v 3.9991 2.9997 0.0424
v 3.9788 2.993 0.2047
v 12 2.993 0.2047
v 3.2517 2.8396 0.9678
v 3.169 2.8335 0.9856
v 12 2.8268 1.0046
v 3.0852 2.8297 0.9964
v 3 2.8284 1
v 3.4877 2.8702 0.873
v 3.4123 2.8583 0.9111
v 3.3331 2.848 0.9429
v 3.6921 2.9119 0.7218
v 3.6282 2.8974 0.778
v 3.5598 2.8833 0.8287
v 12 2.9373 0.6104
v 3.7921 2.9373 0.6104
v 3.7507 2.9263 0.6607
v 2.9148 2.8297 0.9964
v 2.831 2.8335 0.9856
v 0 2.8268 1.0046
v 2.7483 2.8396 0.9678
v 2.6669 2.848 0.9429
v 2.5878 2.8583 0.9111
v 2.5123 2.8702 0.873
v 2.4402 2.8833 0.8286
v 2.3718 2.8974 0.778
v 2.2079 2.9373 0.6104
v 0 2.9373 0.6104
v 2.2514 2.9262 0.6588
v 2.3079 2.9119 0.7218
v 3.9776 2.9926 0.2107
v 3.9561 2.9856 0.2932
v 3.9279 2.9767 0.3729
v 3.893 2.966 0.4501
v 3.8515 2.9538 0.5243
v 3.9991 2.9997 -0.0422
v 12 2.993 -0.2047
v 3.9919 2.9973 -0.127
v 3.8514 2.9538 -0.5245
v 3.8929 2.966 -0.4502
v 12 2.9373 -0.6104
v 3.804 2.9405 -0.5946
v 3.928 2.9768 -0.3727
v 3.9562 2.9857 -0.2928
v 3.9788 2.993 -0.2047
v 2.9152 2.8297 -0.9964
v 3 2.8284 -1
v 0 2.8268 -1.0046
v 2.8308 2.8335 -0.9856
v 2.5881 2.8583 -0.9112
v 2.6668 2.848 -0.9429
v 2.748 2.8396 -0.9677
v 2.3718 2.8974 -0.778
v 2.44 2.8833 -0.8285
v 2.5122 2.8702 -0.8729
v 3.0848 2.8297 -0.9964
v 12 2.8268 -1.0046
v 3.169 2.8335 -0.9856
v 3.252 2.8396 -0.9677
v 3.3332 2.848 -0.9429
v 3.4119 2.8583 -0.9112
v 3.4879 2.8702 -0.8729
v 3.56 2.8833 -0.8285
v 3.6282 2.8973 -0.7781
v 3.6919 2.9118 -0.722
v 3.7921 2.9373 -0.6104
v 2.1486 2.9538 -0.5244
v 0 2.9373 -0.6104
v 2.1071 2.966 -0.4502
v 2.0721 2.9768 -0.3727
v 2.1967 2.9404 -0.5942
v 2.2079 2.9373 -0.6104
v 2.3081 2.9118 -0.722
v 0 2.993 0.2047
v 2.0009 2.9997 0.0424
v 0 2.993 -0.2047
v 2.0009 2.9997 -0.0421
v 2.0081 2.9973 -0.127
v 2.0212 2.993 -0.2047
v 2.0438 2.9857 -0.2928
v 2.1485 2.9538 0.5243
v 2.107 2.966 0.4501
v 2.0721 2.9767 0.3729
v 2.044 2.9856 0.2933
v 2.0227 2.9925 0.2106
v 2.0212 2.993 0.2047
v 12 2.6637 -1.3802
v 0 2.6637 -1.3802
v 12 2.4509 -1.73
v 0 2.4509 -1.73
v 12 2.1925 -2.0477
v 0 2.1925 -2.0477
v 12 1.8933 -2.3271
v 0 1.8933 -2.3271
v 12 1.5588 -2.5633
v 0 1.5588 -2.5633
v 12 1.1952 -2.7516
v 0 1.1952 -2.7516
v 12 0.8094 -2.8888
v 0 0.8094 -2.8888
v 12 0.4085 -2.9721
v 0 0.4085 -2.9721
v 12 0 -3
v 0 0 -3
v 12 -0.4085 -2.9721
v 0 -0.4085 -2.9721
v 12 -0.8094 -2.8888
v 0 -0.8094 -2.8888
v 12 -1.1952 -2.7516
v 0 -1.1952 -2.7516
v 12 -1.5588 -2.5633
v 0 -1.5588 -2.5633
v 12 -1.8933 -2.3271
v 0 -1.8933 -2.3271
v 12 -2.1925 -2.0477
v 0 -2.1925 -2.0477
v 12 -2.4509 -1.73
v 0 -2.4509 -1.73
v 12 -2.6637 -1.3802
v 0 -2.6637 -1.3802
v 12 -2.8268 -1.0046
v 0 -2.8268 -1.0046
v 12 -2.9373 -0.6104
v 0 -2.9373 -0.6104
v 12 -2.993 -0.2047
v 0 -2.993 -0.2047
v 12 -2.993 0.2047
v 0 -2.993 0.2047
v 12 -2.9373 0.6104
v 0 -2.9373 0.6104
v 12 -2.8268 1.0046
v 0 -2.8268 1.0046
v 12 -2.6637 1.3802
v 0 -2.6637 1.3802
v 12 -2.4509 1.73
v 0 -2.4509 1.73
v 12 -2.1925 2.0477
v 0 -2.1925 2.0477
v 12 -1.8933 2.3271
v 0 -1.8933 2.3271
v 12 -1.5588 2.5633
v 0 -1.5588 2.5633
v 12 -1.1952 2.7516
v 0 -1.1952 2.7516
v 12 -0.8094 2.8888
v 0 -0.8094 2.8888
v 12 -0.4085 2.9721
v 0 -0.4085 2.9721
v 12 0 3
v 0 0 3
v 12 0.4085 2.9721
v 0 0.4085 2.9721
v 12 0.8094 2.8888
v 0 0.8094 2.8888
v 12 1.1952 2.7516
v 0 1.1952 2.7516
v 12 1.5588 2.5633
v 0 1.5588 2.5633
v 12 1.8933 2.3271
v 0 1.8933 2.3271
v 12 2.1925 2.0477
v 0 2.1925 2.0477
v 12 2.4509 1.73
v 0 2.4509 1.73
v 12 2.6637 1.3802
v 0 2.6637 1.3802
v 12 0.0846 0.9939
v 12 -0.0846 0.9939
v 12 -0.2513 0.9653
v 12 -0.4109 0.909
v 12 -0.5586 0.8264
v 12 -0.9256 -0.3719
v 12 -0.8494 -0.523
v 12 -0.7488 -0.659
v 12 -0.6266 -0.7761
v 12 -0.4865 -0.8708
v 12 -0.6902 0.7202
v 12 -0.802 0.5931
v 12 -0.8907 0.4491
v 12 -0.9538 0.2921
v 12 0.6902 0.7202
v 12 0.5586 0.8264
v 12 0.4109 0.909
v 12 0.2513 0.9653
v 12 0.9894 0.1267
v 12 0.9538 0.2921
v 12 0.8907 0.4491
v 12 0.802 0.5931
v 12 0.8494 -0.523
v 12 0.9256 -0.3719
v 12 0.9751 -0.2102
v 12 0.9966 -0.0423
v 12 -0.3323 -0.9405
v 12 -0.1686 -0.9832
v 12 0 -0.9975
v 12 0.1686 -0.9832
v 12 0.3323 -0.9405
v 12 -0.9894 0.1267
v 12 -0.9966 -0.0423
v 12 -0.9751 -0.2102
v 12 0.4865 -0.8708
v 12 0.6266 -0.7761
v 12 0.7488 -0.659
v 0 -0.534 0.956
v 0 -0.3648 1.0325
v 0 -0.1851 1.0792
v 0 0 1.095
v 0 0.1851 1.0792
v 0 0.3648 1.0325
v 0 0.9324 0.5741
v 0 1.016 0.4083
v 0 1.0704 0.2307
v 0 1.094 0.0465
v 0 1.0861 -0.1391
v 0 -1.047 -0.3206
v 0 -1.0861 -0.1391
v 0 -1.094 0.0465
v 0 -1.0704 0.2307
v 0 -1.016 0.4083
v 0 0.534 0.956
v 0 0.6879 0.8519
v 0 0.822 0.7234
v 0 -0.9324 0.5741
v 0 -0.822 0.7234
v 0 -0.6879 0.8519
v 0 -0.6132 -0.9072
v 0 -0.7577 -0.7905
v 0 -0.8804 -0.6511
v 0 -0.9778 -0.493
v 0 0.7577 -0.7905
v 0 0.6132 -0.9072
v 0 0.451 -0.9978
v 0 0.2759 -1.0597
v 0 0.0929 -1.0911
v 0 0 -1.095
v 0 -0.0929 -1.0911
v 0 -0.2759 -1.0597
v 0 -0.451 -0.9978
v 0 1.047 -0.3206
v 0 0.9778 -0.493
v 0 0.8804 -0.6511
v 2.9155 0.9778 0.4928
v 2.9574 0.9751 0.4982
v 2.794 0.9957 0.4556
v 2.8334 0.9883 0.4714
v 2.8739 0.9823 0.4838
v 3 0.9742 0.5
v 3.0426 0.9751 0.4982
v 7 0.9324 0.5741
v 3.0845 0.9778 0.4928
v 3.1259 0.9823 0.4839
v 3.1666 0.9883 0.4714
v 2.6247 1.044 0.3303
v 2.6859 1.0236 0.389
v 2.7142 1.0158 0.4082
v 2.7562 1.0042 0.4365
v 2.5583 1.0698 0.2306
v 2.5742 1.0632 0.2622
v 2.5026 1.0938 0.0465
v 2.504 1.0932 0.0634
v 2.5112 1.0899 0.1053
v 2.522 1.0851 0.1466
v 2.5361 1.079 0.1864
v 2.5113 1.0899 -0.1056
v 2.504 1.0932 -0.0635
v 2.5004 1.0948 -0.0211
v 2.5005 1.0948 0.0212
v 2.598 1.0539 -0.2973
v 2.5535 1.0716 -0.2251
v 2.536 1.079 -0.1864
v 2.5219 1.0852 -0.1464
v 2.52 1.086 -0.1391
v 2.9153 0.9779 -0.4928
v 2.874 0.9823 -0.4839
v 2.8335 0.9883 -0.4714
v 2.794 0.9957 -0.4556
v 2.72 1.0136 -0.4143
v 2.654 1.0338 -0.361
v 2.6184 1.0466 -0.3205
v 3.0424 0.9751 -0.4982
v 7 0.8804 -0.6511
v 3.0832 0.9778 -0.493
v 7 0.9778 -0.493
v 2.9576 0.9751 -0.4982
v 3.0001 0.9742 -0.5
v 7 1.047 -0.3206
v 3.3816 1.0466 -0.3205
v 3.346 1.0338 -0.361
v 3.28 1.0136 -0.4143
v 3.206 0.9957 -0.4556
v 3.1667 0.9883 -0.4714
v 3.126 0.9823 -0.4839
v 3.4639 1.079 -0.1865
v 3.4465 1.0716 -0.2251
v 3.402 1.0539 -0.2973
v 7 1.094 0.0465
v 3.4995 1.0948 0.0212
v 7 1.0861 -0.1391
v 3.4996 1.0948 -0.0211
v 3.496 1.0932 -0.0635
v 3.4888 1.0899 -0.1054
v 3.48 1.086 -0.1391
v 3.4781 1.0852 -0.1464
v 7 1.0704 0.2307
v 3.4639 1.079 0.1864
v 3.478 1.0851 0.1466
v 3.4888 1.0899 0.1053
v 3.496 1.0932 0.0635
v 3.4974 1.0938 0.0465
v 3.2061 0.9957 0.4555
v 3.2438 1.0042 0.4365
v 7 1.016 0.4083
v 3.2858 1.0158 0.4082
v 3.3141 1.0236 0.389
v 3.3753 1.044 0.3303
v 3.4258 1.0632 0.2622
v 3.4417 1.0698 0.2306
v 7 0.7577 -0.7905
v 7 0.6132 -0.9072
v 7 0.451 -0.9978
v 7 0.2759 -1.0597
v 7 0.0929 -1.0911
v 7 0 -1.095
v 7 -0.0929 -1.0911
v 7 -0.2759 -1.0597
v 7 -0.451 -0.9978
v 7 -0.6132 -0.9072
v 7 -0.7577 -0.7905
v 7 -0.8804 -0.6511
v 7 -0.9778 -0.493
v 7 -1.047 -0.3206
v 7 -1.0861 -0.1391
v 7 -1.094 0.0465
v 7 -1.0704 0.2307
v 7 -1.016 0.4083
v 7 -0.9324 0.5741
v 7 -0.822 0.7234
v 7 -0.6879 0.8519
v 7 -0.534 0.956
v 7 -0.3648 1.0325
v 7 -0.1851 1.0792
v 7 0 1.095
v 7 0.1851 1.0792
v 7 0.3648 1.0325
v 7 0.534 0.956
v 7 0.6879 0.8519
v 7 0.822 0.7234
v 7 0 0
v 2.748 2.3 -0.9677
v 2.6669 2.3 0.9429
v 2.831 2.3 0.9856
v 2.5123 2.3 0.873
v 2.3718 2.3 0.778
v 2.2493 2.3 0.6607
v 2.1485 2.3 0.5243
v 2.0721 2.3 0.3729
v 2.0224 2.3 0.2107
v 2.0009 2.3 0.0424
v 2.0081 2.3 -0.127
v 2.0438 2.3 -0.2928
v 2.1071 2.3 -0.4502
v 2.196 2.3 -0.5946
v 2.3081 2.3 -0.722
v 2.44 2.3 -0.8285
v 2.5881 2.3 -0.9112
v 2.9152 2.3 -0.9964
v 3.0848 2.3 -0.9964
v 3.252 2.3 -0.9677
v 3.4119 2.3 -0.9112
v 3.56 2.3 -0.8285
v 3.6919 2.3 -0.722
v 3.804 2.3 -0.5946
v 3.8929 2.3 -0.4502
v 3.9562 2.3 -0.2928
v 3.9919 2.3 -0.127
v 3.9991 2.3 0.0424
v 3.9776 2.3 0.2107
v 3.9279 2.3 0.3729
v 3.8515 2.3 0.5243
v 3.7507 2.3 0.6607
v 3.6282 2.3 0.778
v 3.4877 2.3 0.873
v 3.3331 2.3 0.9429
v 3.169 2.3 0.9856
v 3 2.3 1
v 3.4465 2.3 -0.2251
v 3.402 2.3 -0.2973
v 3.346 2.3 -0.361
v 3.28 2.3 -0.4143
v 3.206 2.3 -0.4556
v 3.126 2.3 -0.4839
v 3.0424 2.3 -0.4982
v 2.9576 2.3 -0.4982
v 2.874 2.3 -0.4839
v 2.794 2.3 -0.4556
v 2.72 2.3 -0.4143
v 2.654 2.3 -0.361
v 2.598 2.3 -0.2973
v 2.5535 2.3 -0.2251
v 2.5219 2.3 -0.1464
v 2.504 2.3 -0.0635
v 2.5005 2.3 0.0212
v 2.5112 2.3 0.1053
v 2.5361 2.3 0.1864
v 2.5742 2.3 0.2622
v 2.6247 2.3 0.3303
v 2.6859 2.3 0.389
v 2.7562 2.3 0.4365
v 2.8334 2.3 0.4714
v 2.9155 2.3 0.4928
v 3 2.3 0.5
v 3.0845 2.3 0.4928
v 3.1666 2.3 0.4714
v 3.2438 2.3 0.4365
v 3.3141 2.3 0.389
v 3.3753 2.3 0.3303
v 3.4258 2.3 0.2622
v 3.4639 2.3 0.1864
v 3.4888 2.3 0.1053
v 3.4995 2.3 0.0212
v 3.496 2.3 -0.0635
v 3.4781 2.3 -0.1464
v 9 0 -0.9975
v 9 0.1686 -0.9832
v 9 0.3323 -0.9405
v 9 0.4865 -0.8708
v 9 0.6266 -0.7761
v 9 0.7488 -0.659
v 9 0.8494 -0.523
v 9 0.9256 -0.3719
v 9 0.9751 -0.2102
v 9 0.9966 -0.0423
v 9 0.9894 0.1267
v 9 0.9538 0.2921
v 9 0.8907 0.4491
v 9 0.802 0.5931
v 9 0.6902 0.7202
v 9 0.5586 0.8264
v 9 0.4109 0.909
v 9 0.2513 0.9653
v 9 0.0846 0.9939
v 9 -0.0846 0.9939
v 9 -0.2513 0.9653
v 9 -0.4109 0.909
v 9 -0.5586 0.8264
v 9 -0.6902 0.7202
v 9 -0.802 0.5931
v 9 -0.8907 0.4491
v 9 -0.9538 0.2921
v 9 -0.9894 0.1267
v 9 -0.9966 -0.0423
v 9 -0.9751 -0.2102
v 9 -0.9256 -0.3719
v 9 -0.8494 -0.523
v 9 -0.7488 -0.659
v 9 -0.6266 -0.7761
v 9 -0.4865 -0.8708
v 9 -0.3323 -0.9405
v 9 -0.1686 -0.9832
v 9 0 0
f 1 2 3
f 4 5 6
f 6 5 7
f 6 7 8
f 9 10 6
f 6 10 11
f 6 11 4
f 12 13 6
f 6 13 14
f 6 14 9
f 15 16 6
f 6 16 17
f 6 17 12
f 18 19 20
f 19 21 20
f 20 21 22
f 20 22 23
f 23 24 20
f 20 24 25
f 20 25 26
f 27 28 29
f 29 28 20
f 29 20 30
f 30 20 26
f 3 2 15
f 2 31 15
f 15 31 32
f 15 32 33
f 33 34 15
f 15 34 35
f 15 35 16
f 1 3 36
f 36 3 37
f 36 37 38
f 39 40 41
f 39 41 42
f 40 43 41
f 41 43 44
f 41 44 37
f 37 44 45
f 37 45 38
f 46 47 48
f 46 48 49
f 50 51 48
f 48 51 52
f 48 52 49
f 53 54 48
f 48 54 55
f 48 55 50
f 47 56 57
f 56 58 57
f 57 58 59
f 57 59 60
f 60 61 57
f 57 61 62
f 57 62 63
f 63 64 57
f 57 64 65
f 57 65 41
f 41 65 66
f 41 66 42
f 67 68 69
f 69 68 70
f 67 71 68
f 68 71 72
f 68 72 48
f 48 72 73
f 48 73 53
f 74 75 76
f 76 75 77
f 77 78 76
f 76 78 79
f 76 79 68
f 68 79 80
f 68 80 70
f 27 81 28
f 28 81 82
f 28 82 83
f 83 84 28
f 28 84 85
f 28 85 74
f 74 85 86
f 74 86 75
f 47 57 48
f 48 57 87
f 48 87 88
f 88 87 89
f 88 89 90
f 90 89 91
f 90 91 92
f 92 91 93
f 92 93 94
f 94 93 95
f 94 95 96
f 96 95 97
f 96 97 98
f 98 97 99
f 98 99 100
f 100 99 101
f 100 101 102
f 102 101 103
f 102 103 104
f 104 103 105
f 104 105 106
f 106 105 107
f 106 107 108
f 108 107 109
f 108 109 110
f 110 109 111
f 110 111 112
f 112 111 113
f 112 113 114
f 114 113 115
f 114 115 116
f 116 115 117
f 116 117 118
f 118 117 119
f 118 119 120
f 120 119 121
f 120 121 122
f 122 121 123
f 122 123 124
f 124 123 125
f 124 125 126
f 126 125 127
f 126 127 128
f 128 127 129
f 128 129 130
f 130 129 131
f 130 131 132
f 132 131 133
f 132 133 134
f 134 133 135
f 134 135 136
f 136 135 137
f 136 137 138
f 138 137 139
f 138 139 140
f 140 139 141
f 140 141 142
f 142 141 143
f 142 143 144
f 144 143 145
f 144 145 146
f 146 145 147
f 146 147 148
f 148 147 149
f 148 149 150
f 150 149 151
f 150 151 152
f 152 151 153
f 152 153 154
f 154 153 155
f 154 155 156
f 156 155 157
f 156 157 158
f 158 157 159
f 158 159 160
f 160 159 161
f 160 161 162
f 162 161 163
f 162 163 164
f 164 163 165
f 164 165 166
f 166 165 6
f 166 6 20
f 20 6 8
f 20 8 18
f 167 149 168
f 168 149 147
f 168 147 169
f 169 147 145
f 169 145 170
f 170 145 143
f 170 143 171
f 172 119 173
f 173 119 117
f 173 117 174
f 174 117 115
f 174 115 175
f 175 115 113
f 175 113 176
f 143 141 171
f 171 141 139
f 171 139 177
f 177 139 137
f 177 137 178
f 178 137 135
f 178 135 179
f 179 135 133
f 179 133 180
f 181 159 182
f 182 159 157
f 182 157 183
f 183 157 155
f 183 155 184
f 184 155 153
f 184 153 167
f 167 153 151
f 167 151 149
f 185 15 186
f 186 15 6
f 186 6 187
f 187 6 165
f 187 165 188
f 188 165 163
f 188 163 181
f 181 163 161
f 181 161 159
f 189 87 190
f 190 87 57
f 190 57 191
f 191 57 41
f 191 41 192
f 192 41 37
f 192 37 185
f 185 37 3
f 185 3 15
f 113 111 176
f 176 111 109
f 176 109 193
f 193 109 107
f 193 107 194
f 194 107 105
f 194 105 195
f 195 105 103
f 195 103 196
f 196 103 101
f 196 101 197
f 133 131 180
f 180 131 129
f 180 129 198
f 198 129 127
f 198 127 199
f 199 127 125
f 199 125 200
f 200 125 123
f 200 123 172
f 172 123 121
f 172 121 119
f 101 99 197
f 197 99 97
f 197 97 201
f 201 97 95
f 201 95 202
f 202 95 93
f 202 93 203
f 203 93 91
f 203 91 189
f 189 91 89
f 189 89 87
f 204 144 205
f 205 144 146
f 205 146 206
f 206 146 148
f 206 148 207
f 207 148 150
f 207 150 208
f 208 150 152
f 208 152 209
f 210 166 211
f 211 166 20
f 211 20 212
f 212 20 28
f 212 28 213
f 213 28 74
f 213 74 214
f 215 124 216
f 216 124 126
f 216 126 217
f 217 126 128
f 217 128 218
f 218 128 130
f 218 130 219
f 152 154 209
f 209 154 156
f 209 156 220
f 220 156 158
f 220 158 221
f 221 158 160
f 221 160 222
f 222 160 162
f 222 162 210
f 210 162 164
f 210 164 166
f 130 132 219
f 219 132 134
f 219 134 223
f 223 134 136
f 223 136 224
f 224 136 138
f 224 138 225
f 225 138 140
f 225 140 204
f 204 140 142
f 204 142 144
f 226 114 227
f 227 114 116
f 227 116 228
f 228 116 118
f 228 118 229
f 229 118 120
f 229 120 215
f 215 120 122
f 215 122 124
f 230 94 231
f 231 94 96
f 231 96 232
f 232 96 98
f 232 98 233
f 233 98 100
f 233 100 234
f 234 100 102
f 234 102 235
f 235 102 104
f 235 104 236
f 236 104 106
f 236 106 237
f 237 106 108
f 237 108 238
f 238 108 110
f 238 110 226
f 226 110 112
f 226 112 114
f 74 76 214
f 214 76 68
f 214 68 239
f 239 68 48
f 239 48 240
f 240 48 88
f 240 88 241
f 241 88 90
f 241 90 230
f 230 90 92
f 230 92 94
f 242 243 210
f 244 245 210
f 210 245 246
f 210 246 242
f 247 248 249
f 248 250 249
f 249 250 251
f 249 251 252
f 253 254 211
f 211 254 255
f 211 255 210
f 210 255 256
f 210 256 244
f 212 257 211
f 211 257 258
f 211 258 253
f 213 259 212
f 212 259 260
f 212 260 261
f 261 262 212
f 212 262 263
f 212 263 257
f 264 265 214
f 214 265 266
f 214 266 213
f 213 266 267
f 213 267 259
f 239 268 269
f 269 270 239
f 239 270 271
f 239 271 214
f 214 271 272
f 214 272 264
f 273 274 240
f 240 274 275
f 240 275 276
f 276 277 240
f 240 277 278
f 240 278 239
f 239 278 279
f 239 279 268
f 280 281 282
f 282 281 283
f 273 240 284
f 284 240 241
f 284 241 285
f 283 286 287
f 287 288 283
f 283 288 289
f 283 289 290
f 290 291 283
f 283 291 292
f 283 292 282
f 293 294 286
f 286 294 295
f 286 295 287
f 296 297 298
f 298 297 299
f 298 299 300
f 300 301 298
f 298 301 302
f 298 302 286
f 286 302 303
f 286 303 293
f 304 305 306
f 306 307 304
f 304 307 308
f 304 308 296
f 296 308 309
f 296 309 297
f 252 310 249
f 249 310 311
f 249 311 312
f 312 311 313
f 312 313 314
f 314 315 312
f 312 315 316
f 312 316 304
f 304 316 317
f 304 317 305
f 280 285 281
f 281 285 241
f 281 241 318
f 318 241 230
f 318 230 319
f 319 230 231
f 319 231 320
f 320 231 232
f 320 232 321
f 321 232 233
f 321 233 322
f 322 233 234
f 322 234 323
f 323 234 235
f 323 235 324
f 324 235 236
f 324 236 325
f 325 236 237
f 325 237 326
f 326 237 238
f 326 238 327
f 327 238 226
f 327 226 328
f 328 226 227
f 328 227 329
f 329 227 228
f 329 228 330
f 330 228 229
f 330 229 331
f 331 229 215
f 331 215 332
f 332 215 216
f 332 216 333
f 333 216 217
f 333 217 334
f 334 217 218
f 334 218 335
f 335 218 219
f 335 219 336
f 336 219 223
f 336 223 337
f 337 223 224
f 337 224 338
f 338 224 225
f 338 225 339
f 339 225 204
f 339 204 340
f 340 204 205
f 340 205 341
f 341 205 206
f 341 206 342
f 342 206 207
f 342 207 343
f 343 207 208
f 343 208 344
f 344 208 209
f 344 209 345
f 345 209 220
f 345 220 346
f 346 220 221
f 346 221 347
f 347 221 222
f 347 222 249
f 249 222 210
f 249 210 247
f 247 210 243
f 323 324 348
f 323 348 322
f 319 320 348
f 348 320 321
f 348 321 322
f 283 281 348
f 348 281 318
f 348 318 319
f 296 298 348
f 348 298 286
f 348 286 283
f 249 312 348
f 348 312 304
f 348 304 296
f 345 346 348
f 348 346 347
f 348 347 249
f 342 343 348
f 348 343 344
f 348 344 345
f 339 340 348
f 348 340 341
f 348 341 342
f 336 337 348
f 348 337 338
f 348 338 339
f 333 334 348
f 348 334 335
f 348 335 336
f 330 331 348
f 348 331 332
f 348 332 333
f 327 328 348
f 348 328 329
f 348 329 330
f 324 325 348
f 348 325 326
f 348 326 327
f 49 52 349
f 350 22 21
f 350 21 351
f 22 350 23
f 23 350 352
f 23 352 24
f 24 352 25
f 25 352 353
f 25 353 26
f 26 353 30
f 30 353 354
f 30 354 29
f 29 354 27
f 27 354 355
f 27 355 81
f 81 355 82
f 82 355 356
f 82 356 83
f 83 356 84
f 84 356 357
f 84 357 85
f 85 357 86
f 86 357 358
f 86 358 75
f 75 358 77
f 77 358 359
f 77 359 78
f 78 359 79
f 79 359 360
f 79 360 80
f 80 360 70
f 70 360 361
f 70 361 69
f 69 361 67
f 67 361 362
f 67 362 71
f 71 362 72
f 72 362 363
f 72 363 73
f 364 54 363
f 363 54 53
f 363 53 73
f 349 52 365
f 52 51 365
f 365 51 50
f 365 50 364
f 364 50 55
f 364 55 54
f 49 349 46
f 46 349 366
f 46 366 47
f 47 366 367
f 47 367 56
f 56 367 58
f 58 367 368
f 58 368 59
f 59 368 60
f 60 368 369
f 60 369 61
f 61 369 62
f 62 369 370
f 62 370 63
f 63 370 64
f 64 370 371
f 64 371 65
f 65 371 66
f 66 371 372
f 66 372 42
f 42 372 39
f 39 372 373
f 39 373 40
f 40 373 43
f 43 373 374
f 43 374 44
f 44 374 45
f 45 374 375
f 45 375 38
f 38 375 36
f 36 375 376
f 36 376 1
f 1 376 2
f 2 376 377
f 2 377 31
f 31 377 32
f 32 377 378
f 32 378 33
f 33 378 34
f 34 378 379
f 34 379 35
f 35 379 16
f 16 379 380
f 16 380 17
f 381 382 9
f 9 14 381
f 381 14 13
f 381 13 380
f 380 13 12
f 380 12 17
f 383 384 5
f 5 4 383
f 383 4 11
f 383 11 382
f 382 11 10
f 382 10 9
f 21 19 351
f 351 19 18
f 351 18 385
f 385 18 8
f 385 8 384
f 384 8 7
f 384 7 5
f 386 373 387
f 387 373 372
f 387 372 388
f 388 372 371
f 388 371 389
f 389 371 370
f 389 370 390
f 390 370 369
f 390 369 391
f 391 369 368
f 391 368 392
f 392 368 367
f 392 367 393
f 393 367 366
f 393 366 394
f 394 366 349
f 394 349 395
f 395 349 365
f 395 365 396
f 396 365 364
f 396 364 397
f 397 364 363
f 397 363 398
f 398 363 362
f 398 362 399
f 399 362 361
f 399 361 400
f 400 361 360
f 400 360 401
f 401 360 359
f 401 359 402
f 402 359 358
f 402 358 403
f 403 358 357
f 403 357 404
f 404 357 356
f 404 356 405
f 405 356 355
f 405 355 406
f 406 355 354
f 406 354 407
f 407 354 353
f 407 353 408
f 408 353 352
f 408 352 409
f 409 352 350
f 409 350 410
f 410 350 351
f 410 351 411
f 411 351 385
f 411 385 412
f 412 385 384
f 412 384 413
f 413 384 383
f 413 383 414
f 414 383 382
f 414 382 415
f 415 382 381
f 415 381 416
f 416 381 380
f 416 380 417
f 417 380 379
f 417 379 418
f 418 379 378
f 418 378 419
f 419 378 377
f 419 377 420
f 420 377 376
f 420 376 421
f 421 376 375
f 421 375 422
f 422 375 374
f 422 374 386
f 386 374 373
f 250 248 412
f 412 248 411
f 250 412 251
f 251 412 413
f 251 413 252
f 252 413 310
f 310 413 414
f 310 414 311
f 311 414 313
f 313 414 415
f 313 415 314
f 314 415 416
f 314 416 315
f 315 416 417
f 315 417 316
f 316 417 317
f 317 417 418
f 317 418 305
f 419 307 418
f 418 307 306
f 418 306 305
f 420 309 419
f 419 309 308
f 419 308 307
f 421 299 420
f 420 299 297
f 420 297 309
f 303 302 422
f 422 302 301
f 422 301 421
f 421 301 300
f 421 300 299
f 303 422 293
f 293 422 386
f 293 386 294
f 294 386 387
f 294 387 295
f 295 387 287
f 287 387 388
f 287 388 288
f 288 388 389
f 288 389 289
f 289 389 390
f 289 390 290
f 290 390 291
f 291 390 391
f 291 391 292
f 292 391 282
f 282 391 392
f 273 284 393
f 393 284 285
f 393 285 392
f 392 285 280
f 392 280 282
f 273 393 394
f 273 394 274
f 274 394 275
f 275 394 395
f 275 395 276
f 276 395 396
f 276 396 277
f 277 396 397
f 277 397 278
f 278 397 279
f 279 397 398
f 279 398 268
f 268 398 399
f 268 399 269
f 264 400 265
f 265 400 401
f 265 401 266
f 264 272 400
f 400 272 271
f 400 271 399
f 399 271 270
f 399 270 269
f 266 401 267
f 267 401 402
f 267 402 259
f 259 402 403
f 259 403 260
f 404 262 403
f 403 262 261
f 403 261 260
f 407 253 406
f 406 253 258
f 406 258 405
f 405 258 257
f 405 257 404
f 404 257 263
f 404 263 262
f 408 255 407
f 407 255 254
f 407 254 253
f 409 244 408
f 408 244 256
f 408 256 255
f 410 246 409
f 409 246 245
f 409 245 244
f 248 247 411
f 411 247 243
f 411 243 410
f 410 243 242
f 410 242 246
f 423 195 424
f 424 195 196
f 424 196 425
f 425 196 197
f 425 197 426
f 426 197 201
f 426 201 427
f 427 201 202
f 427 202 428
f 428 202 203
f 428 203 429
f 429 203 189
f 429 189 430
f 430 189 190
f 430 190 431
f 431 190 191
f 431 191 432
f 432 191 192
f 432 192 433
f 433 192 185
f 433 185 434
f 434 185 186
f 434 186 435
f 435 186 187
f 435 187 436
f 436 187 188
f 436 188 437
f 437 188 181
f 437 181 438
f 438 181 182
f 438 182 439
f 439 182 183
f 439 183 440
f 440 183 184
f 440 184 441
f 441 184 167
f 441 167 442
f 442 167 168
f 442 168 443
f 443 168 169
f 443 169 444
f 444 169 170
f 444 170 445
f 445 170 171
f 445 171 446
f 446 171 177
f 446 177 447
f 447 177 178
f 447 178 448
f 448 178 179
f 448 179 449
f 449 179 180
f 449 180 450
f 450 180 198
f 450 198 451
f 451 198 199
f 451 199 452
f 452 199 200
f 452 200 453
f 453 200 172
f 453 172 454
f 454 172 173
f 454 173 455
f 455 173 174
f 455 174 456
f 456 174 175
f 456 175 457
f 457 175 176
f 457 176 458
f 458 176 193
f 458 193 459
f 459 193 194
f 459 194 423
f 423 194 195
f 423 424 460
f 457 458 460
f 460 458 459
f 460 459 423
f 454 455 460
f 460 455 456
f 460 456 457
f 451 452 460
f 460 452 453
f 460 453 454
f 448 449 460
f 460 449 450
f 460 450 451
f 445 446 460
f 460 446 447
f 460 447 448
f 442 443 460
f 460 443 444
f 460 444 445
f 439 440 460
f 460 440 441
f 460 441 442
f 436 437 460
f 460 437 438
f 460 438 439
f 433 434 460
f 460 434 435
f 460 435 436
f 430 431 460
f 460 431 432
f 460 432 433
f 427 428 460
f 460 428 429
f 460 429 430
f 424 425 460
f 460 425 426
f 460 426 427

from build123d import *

# Parameters (mm, degrees)
SKETCH1_R               = 3
BOSS_EXTRUDE1_DEPTH     = 12
SKETCH2_R               = 1.095
CUT_EXTRUDE1_DEPTH      = 7
SKETCH3_R               = 1
CUT_EXTRUDE2_DEPTH      = 0.7
CUT_EXTRUDE3_REACH      = 15.599
CUT_EXTRUDE3_END_RADIUS = 1.095
SKETCH4_R               = 0.5
SKETCH5_R               = 0.9975
CUT_EXTRUDE4_DEPTH      = 3


with BuildPart() as part:
    # Sketch1 → Boss-Extrude1 (new body)
    with BuildSketch(Plane(origin=(0, 0, 0), x_dir=(0, 0, -1), z_dir=(1, 0, 0))):
        Circle(SKETCH1_R)
    extrude(amount=BOSS_EXTRUDE1_DEPTH)

    # Sketch2 → Cut-Extrude1 (cut)
    with BuildSketch(Plane(origin=(0, 0, 0), x_dir=(0, 0, -1), z_dir=(1, 0, 0))):
        Circle(SKETCH2_R)
    extrude(amount=CUT_EXTRUDE1_DEPTH, mode=Mode.SUBTRACT)

    # Sketch3 → Cut-Extrude2 (cut)
    with BuildSketch(Plane(origin=(0, 3, 0), x_dir=(1, 0, 0), z_dir=(0, 1, 0))):
        with Locations(Location((3, 0, 0), (0, 0, 270))):
            Circle(SKETCH3_R)
    extrude(amount=-CUT_EXTRUDE2_DEPTH, mode=Mode.SUBTRACT)

    # Cut-Extrude3: up to this cylinder (the profile starts outside it)
    cut_extrude3_end = Plane(origin=(3, 0, 0), z_dir=(-1, 0, 0)) * Cylinder(CUT_EXTRUDE3_END_RADIUS, 34.388, mode=Mode.PRIVATE)
    # Sketch4 → Cut-Extrude3 (cut, up to the surface)
    with BuildSketch(Plane(origin=(0, 2.65, 0), x_dir=(1, 0, 0), z_dir=(0, 1, 0)), mode=Mode.PRIVATE) as cut_extrude3_sk1:
        with Locations(Location((3, 0, 0), (0, 0, 270))):
            Circle(SKETCH4_R)
    cut_extrude3_tool1 = extrude(cut_extrude3_sk1.sketch, amount=-CUT_EXTRUDE3_REACH, mode=Mode.PRIVATE) - cut_extrude3_end
    add(cut_extrude3_tool1.solids().sort_by_distance((3, 2.65, 0))[0], mode=Mode.SUBTRACT)

    # Sketch5 → Cut-Extrude4 (cut)
    with BuildSketch(Plane(origin=(12, 0, 0), x_dir=(0, 0, -1), z_dir=(1, 0, 0))):
        Circle(SKETCH5_R)
    extrude(amount=-CUT_EXTRUDE4_DEPTH, mode=Mode.SUBTRACT)


solid = part.part
